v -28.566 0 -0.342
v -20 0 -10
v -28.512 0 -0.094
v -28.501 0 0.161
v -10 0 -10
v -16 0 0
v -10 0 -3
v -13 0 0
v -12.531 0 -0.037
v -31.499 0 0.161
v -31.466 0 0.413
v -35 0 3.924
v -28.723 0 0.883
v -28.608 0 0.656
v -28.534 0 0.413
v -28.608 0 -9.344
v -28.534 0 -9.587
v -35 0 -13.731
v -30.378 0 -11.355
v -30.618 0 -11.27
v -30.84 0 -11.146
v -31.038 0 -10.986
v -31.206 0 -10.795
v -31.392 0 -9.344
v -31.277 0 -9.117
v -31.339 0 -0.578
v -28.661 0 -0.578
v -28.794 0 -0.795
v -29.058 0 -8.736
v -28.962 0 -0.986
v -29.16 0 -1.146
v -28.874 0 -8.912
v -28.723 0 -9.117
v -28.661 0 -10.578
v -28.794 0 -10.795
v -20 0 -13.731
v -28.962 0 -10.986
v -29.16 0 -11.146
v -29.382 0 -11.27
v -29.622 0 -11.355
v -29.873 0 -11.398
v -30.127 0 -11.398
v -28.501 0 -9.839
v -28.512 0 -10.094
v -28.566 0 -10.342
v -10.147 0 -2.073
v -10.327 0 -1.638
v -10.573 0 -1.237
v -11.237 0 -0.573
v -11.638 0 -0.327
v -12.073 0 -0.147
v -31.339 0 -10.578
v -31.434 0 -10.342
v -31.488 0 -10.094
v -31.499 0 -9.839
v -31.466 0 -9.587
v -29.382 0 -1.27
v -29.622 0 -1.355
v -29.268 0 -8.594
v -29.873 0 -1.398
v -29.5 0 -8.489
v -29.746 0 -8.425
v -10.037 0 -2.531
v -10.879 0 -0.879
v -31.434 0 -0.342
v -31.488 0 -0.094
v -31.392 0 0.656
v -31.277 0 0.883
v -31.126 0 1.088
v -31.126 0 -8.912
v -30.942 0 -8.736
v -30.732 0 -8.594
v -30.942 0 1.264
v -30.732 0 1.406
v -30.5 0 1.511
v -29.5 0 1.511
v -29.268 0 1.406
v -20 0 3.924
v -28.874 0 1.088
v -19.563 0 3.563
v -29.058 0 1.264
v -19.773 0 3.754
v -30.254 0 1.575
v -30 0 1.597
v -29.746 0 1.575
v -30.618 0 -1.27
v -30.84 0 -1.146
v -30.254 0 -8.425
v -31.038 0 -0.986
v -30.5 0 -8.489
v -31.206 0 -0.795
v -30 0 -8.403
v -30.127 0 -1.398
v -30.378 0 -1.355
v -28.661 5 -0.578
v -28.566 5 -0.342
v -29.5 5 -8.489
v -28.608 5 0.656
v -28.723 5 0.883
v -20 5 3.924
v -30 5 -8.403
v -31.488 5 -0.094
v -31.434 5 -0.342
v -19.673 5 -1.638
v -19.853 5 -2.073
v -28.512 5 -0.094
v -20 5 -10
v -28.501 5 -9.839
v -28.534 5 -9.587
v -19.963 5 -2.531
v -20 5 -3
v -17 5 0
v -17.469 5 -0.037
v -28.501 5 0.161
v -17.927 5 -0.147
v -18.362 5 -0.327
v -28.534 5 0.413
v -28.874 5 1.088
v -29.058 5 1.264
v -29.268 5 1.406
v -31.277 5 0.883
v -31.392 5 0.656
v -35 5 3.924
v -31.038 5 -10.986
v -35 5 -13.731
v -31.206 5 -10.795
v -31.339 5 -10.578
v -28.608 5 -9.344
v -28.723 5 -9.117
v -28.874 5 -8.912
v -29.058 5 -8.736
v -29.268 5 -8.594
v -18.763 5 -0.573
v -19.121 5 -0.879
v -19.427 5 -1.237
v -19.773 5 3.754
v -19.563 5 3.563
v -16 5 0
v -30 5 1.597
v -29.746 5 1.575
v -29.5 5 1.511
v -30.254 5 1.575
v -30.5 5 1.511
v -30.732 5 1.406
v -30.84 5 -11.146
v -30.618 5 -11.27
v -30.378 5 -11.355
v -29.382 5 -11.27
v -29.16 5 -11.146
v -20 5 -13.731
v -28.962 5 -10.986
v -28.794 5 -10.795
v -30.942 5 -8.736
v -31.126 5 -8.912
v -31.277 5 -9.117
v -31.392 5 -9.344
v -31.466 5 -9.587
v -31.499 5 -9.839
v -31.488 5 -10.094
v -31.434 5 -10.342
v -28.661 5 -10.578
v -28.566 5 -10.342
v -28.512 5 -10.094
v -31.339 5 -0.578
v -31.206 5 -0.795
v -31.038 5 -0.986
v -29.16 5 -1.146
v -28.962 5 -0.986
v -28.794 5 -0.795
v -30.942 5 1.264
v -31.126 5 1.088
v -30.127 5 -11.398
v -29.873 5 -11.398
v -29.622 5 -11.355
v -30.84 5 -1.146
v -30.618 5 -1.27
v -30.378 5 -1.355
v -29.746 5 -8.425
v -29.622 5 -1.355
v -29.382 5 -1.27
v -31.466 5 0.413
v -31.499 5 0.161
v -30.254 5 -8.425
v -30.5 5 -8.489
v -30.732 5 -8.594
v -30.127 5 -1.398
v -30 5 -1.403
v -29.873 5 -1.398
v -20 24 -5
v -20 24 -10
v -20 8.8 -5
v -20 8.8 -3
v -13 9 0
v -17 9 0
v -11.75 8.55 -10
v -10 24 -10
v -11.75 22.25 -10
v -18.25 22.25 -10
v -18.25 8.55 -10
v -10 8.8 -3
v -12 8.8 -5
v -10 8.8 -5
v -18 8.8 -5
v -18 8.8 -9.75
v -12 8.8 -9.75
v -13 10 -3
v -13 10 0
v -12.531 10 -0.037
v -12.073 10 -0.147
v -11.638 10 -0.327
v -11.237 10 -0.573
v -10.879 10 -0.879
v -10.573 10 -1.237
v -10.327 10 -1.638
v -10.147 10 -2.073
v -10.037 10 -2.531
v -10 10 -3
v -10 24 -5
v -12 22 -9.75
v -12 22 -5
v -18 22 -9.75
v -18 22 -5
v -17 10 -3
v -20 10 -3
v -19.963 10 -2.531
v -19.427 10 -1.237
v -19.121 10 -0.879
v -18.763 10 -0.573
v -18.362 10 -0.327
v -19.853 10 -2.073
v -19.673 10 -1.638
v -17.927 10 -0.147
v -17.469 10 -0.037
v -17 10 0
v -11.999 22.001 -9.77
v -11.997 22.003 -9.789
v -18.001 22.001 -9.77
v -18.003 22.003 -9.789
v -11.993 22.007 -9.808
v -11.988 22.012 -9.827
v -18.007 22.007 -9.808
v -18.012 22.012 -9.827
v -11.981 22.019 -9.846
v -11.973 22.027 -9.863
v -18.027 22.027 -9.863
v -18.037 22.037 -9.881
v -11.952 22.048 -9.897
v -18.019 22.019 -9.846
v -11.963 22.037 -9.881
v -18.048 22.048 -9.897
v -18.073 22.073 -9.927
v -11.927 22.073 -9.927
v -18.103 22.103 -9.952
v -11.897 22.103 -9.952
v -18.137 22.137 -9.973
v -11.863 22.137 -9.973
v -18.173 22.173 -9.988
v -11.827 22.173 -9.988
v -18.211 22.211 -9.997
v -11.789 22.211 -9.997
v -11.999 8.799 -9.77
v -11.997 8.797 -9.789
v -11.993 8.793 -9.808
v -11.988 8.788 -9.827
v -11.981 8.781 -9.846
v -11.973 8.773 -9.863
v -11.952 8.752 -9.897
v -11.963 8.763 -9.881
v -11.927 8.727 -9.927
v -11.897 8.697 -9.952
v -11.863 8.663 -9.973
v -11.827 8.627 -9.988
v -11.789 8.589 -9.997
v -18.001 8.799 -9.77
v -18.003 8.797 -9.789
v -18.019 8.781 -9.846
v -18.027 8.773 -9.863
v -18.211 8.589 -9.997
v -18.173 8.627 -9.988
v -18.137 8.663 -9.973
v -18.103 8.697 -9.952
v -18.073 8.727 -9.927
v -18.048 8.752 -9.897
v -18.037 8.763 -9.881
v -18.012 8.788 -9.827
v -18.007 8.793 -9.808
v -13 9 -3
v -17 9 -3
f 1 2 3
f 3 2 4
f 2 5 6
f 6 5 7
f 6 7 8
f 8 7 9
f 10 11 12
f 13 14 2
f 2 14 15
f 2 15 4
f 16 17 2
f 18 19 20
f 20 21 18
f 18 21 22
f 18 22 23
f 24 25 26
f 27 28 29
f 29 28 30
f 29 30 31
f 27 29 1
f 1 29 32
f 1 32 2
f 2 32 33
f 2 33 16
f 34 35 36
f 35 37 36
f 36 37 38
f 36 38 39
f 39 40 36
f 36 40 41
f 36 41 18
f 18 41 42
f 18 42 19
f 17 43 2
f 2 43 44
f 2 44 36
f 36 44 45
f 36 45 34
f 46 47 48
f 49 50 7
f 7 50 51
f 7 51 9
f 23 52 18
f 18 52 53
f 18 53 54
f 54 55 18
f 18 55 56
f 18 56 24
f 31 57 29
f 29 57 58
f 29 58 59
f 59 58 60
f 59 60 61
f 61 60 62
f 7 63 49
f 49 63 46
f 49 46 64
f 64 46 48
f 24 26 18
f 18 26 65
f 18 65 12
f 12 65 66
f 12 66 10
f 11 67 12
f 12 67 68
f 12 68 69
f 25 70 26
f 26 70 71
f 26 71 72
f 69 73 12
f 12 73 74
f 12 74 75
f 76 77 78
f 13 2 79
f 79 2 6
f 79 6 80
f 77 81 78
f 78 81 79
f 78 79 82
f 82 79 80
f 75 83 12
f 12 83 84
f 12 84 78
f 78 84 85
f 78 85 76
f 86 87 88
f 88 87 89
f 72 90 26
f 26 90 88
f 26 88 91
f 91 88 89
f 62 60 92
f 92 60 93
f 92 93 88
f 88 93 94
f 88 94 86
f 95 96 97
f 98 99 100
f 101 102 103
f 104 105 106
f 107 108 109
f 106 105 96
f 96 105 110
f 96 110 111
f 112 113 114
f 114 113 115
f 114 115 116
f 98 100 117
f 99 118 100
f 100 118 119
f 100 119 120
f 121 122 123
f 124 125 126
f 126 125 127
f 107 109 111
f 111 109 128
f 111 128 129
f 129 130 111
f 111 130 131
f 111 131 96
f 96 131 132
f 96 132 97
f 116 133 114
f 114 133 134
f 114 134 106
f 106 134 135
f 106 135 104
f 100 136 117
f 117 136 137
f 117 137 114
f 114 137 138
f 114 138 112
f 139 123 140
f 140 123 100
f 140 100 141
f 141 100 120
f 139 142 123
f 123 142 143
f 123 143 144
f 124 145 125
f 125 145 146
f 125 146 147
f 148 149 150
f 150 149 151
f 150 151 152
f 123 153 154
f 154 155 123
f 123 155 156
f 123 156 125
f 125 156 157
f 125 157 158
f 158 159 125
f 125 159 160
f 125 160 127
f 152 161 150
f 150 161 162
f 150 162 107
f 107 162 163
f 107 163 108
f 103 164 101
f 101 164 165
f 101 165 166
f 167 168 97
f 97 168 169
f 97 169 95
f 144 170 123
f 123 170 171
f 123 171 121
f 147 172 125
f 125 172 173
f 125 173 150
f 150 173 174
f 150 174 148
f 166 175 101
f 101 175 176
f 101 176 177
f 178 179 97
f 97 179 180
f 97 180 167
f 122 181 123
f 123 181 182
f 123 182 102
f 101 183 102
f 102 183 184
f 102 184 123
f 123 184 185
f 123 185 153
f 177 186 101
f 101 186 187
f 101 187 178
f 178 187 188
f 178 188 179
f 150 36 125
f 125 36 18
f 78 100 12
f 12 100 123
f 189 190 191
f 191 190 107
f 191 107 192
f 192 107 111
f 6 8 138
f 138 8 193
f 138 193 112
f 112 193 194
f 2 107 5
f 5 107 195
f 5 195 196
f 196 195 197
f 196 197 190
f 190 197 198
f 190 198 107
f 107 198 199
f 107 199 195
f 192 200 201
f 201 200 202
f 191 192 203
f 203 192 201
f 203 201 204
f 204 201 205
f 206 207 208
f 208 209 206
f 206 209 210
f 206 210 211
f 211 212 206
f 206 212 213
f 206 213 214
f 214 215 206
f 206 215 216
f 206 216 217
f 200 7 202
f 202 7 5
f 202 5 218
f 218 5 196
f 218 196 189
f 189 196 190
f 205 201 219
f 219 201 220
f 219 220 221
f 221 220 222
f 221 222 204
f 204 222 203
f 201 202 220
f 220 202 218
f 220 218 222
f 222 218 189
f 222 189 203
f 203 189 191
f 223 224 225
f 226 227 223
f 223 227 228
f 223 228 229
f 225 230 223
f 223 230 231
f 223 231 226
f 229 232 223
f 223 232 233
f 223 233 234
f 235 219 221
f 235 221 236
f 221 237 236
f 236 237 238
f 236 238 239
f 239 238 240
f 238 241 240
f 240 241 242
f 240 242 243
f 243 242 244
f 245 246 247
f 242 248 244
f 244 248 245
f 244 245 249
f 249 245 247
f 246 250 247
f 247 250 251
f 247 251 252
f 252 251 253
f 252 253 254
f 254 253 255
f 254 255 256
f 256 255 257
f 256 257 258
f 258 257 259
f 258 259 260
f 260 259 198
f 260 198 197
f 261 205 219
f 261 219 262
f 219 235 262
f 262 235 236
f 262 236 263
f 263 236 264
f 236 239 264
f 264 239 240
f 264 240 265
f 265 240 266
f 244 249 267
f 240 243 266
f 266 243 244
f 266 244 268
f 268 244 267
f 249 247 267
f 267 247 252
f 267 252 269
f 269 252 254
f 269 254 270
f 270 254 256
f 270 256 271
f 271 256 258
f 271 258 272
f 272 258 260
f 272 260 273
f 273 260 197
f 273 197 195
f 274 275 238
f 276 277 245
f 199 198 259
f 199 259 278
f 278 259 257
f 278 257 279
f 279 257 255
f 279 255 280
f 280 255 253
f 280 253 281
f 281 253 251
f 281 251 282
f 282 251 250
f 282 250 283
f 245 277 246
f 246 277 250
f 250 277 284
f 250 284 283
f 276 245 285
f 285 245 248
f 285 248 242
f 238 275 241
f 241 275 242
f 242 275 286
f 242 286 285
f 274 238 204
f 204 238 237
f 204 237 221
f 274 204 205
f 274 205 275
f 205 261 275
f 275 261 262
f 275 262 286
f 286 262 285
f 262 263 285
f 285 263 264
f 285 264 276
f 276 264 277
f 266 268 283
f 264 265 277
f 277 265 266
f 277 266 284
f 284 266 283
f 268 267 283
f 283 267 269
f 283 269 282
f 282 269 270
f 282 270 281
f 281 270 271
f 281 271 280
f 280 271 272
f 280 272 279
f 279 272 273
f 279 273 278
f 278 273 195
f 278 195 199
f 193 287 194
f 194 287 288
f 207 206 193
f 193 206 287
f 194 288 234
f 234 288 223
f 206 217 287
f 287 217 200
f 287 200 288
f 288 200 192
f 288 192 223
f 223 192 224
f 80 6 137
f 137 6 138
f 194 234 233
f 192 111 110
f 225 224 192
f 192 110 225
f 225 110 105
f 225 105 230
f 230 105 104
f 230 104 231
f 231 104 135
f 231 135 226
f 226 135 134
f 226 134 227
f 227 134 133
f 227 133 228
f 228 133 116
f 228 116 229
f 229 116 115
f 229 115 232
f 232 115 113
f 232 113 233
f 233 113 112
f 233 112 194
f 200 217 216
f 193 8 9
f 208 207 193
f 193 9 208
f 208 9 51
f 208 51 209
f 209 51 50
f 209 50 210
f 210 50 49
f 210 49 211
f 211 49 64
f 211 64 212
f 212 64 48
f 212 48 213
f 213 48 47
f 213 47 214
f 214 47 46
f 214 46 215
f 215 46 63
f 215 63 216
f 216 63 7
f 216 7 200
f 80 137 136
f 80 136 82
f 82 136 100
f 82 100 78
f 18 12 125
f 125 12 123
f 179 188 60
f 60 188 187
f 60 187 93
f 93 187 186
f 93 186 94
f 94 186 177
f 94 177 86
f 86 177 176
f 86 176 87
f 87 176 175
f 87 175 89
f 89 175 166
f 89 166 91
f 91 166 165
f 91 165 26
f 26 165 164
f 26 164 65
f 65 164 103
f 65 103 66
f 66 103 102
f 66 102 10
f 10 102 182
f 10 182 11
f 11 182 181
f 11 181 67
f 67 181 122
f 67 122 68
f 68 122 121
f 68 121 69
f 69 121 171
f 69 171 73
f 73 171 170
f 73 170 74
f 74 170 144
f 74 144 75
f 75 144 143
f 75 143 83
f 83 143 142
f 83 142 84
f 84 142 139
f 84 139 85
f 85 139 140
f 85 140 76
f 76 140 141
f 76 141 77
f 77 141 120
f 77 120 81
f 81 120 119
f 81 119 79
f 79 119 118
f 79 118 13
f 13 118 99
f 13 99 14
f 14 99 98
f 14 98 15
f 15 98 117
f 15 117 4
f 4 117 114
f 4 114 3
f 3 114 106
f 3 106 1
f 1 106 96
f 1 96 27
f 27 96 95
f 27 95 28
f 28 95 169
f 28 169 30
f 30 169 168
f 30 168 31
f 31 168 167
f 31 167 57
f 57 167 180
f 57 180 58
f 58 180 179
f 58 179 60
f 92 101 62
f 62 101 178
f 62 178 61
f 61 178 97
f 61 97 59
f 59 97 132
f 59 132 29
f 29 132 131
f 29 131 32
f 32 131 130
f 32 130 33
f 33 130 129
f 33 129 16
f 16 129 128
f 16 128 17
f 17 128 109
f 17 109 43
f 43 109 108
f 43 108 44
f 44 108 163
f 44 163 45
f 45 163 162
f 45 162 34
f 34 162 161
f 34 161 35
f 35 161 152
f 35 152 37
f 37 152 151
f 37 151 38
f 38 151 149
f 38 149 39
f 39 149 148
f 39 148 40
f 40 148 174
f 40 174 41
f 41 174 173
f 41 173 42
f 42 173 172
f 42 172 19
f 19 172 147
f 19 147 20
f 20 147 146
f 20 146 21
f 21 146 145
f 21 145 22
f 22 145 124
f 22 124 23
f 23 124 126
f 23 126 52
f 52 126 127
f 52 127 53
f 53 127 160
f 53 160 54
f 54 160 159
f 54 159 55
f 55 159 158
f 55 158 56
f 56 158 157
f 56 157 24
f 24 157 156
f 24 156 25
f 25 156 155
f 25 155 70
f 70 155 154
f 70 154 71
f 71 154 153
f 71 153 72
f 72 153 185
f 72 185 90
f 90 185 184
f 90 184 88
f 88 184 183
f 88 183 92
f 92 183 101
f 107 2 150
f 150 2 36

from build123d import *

# Parameters (mm, degrees)
EXTRUDE_1_DEPTH      = 4
SKETCH_2_W           = 10
SKETCH_2_H           = 15
EXTRUDE_2_DEPTH      = 20
SKETCH_3_R           = 1.45
CUT_EXTRUDE_1_DEPTH  = 20
SKETCH_4_W           = 6
SKETCH_4_H           = 13.2
CUT_EXTRUDE_2_DEPTH  = 9.5
SKETCH_6_R           = 0.75
CUT_EXTRUDE_4_DEPTH  = 3.5
SKETCH_7_W           = 10
SKETCH_7_H           = 24
CUT_EXTRUDE_5_DEPTH  = 5
SKETCH_9_W           = 3
SKETCH_9_H           = 12
CUT_EXTRUDE_6_DEPTH  = 10
SKETCH_11_W          = 1.5
SKETCH_11_H          = 12
CUT_EXTRUDE_7_DEPTH  = 10
CUT_EXTRUDE_8_REACH  = 41.699
SKETCH_13_W          = 10
SKETCH_13_H          = 5
SKETCH_19_W          = 10
SKETCH_19_H          = 2.4
EXTRUDE_6_DEPTH      = 4.8
SKETCH_20_W          = 10
SKETCH_20_H          = 2.6
EXTRUDE_7_DEPTH      = 6
FILLET_17_R          = 0.25
SKETCH_21_W          = 4
SKETCH_21_H          = 1
CUT_EXTRUDE_9_DEPTH  = 5.2
EXTRUDE_8_DEPTH      = 0.4
EXTRUDE_START        = 1
SKETCH_29_W          = 10
SKETCH_29_H          = 10
SKETCH_29_R          = 1.45
EXTRUDE_9_DEPTH      = 1
SKETCH_36_W          = 10
SKETCH_36_H          = 10
CUT_EXTRUDE_10_DEPTH = 10
SKETCH_38_W          = 10
SKETCH_38_H          = 5
EXTRUDE_10_DEPTH     = 20
SKETCH_39_W          = 10
SKETCH_39_H          = 5
EXTRUDE_11_DEPTH     = 10
SKETCH_40_R          = 1.5
CUT_EXTRUDE_11_DEPTH = 15
CHAMFER_1_SIZE       = 4
SKETCH_46_W          = 40
SKETCH_46_H          = 5
EXTRUDE_12_DEPTH     = 32
SKETCH_47_R          = 1.5
CUT_EXTRUDE_12_DEPTH = 10
SKETCH_48_W          = 24
SKETCH_48_H          = 16
SKETCH_48_H_2        = 6.075719237
CUT_EXTRUDE_13_DEPTH = 10
EXTRUDE_13_DEPTH     = 5
CHAMFER_2_SIZE       = 6
FILLET_18_R          = 3
CUT_EXTRUDE_14_DEPTH = 10
SKETCH_55_W          = 17.654819926
SKETCH_55_H          = 5
EXTRUDE_14_DEPTH     = 25
SKETCH_60_W          = 17.654819926
SKETCH_60_H          = 5
CUT_EXTRUDE_15_DEPTH = 10
SKETCH_61_R          = 1.5
CUT_EXTRUDE_16_DEPTH = 10
SKETCH_66_W          = 4.869638013
SKETCH_66_H          = 4.33889787
CUT_EXTRUDE_17_DEPTH = 14


with BuildPart() as part:
    # 草图1 → 凸台-拉伸1 (new body)
    with BuildSketch(Plane(origin=(0, 0, 0), x_dir=(1, 0, 0), z_dir=(0, 1, 0))):
        Polygon((-20, 0), (-20, -5), (-10, -5), (-10, 0), (0, 0), (0, 10), (-30, 10), (-30, 0), align=None)
    extrude(amount=EXTRUDE_1_DEPTH)

    # 草图2 → 凸台-拉伸2 (add)
    with BuildSketch(Plane(origin=(0, 4, 0), x_dir=(1, 0, 0), z_dir=(0, 1, 0))):
        with Locations((-15, 2.5)):
            Rectangle(SKETCH_2_W, SKETCH_2_H)
    extrude(amount=EXTRUDE_2_DEPTH)

    # 草图3 → 切除-拉伸1 (cut)
    with BuildSketch(Plane(origin=(0, 4, 0), x_dir=(1, 0, 0), z_dir=(0, 1, 0))):
        with Locations(Location((-5, 5, 0), (0, 0, 270))):
            Circle(SKETCH_3_R)
    extrude(amount=-CUT_EXTRUDE_1_DEPTH, mode=Mode.SUBTRACT)

    # 草图4 → 切除-拉伸2 (cut)
    with BuildSketch(Plane(origin=(0, 0, -10), x_dir=(-1, 0, 0), z_dir=(0, 0, -1))):
        with Locations((15, 15.4)):
            Rectangle(SKETCH_4_W, SKETCH_4_H)
    extrude(amount=-CUT_EXTRUDE_2_DEPTH, mode=Mode.SUBTRACT)

    # 草图6 → 切除-拉伸4 (cut)
    with BuildSketch(Plane(origin=(0, 0, -0.5), x_dir=(-1, 0, 0), z_dir=(0, 0, -1))):
        with Locations((15, 20.68)):
            Circle(SKETCH_6_R)
        with Locations((15, 10.52)):
            Circle(SKETCH_6_R)
        with Locations((15, 15.6)):
            Circle(SKETCH_6_R)
    extrude(amount=-CUT_EXTRUDE_4_DEPTH, mode=Mode.SUBTRACT)

    # 草图7 → 切除-拉伸5 (cut)
    with BuildSketch(Plane.XY.offset(5)):
        with Locations((-15, 12)):
            Rectangle(SKETCH_7_W, SKETCH_7_H)
    extrude(amount=-CUT_EXTRUDE_5_DEPTH, mode=Mode.SUBTRACT)

    # 草图9 → 切除-拉伸6 (cut)
    with BuildSketch(Plane(origin=(0, 0, -0.5), x_dir=(-1, 0, 0), z_dir=(0, 0, -1))):
        with Locations((15, 15.6)):
            Rectangle(SKETCH_9_W, SKETCH_9_H)
    extrude(amount=-CUT_EXTRUDE_6_DEPTH, mode=Mode.SUBTRACT)

    # 草图11 → 切除-拉伸7 (cut)
    with BuildSketch(Plane(origin=(0, 0, -0.5), x_dir=(-1, 0, 0), z_dir=(0, 0, -1))):
        with Locations((17.25, 15.6)):
            Rectangle(SKETCH_11_W, SKETCH_11_H)
        with Locations((12.75, 15.6)):
            Rectangle(SKETCH_11_W, SKETCH_11_H)
    extrude(amount=-CUT_EXTRUDE_7_DEPTH, mode=Mode.SUBTRACT)

    # 切除-拉伸8: up to this face of the body (flat: up to its plane)
    cut_extrude_8_end = Plane(part.part.faces().sort_by_distance((-5, 4, -9.858578644))[0])
    # 草图13 → 切除-拉伸8 (cut, up to the picked face)
    with BuildSketch(Plane(origin=(0, 24, 0), x_dir=(1, 0, 0), z_dir=(0, 1, 0)), mode=Mode.PRIVATE) as cut_extrude_8_sk1:
        with Locations((-15, 2.5)):
            Rectangle(SKETCH_13_W, SKETCH_13_H)
    cut_extrude_8_tool1 = split(extrude(cut_extrude_8_sk1.sketch, amount=-CUT_EXTRUDE_8_REACH, mode=Mode.PRIVATE), bisect_by=cut_extrude_8_end, keep=Keep.BOTH, mode=Mode.PRIVATE)
    add(cut_extrude_8_tool1.solids().sort_by(Axis((-15, 24, -2.5), (0, -1, 0)))[0], mode=Mode.SUBTRACT)

    # 草图19 → 凸台-拉伸6 (add)
    with BuildSketch(Plane(origin=(0, 4, 0), x_dir=(1, 0, 0), z_dir=(0, 1, 0))):
        with Locations((-15, 3.8)):
            Rectangle(SKETCH_19_W, SKETCH_19_H)
    extrude(amount=EXTRUDE_6_DEPTH)

    # 草图20 → 凸台-拉伸7 (add)
    with BuildSketch(Plane(origin=(0, 4, 0), x_dir=(1, 0, 0), z_dir=(0, 1, 0))):
        with Locations((-15, 1.3)):
            Rectangle(SKETCH_20_W, SKETCH_20_H)
    extrude(amount=EXTRUDE_7_DEPTH)

    # 圆角17
    fillet_17_edges = [part.edges().sort_by_distance(p)[0] for p in [
        (-12, 15.4, -10),
        (-15, 8.8, -10),
        (-18, 15.4, -10),
        (-15, 22, -10),
    ]]
    fillet(fillet_17_edges, radius=FILLET_17_R)

    # 草图21 → 切除-拉伸9 (cut)
    with BuildSketch(Plane.XY):
        with Locations((-15, 9.5)):
            Rectangle(SKETCH_21_W, SKETCH_21_H)
    extrude(amount=-CUT_EXTRUDE_9_DEPTH, mode=Mode.SUBTRACT)

    # 草图22 → 凸台-拉伸8 (add)
    with BuildSketch(Plane(origin=(0, 0, -2.6), x_dir=(-1, 0, 0), z_dir=(0, 0, -1))):
        Polygon((17, 9), (13, 9), (13, 10), (10, 10), (10, 8.8), (20, 8.8), (20, 10), (17, 10), align=None)
    extrude(amount=EXTRUDE_8_DEPTH)

    # 草图29 → 凸台-拉伸9 (add)
    # profile 1 of 2: a face of its own
    with BuildSketch(Plane(origin=(0, 4, 0), x_dir=(1, 0, 0), z_dir=(0, 1, 0)).offset(EXTRUDE_START)):
        with Locations((-25, 5)):
            Rectangle(SKETCH_29_W, SKETCH_29_H)
    # profile 2 of 2: a face of its own
    with BuildSketch(Plane(origin=(0, 4, 0), x_dir=(1, 0, 0), z_dir=(0, 1, 0)).offset(EXTRUDE_START)):
        with Locations((-5, 5)):
            Rectangle(SKETCH_29_W, SKETCH_29_H)
        with Locations(Location((-5, 5, 0), (0, 0, 270))):
            Circle(SKETCH_29_R, mode=Mode.SUBTRACT)
    extrude(amount=-EXTRUDE_9_DEPTH)

    # 草图36 → 切除-拉伸10 (cut)
    with BuildSketch(Plane(origin=(0, 5, 0), x_dir=(1, 0, 0), z_dir=(0, 1, 0))):
        with Locations((-5, 5)):
            Rectangle(SKETCH_36_W, SKETCH_36_H)
    extrude(amount=-CUT_EXTRUDE_10_DEPTH, mode=Mode.SUBTRACT)

    # 草图38 → 凸台-拉伸10 (add)
    with BuildSketch(Plane(origin=(0, 0, -10), x_dir=(-1, 0, 0), z_dir=(0, 0, -1))):
        with Locations((25, 2.5)):
            Rectangle(SKETCH_38_W, SKETCH_38_H)
    extrude(amount=EXTRUDE_10_DEPTH)

    # 草图39 → 凸台-拉伸11 (add)
    with BuildSketch(Plane.XY):
        with Locations((-25, 2.5)):
            Rectangle(SKETCH_39_W, SKETCH_39_H)
    extrude(amount=EXTRUDE_11_DEPTH)

    # 草图40 → 切除-拉伸11 (cut)
    with BuildSketch(Plane(origin=(0, 5, 0), x_dir=(1, 0, 0), z_dir=(0, 1, 0))):
        with Locations(Location((-25, 25, 0), (0, 0, 270))):
            Circle(SKETCH_40_R)
        with Locations(Location((-25, -5, 0), (0, 0, 270))):
            Circle(SKETCH_40_R)
    extrude(amount=-CUT_EXTRUDE_11_DEPTH, mode=Mode.SUBTRACT)

    # 倒角1
    # the kernel refuses this chamfer: 4 mm, written as the material it adds along each edge
    with BuildSketch(Plane(origin=(-20, 5, -10), x_dir=(1, 0, 0), z_dir=(0, -1, 0))) as chamfer_1_piece_1:
        Polygon((CHAMFER_1_SIZE, 0), (0, -CHAMFER_1_SIZE), (0, 0), align=None)
    extrude(amount=5)
    with BuildSketch(Plane(origin=(-20, 0, 0), x_dir=(0, 0, 1), z_dir=(0, 1, 0))) as chamfer_1_piece_2:
        Polygon((CHAMFER_1_SIZE, 0), (0, CHAMFER_1_SIZE), (0, 0), align=None)
    extrude(amount=5)

    # 草图46 → 凸台-拉伸12 (add)
    with BuildSketch(Plane.ZY.offset(30)):
        with Locations((-10, 2.5)):
            Rectangle(SKETCH_46_W, SKETCH_46_H)
    extrude(amount=EXTRUDE_12_DEPTH)

    # 草图47 → 切除-拉伸12 (cut)
    with BuildSketch(Plane(origin=(0, 5, 0), x_dir=(1, 0, 0), z_dir=(0, 1, 0))):
        with Locations(Location((-25, -5, 0), (0, 0, 270))):
            Circle(SKETCH_47_R)
        with Locations(Location((-25, 25, 0), (0, 0, 270))):
            Circle(SKETCH_47_R)
        with Locations(Location((-57, 25, 0), (0, 0, 270))):
            Circle(SKETCH_47_R)
        with Locations(Location((-57, -5, 0), (0, 0, 270))):
            Circle(SKETCH_47_R)
    extrude(amount=-CUT_EXTRUDE_12_DEPTH, mode=Mode.SUBTRACT)

    # 草图48 → 切除-拉伸13 (cut)
    with BuildSketch(Plane(origin=(0, 5, 0), x_dir=(1, 0, 0), z_dir=(0, 1, 0))):
        with Locations((-32, 22)):
            Rectangle(SKETCH_48_W, SKETCH_48_H)
        with Locations((-32, -6.962140382)):
            Rectangle(SKETCH_48_W, SKETCH_48_H_2)
    extrude(amount=-CUT_EXTRUDE_13_DEPTH, mode=Mode.SUBTRACT)

    # 草图49 → 凸台-拉伸13 (add)
    with BuildSketch(Plane(origin=(0, 5, 0), x_dir=(1, 0, 0), z_dir=(0, 1, 0))):
        with BuildLine():
            Line((-26.045384198, -3.924280763), (-23.954615802, -3.924280763))
            ThreePointArc((-23.954615802, -3.924280763), (-25, -3.5), (-26.045384198, -3.924280763))
        make_face()
    extrude(amount=-EXTRUDE_13_DEPTH)

    # 倒角2
    chamfer_2_edges = [part.edges().sort_by_distance(p)[0] for p in [
        (-44, 2.5, -14),
        (-44, 2.5, 3.924280763),
    ]]
    chamfer(chamfer_2_edges, length=CHAMFER_2_SIZE)

    # 圆角18
    # the kernel refuses this fillet: 3 mm, written as the material it takes off along each edge
    with BuildSketch(Plane(origin=(-20, 5, 0), x_dir=(0, 0, -1), z_dir=(0, 1, 0))) as fillet_18_piece_1:
        with BuildLine():
            CenterArc((FILLET_18_R, -FILLET_18_R), FILLET_18_R, 90, 90)
            Line((0, -FILLET_18_R), (0, 0))
            Line((0, 0), (FILLET_18_R, 0))
        make_face()
    extrude(amount=12.5, mode=Mode.SUBTRACT)
    with BuildSketch(Plane(origin=(-10, 17.5, 0), x_dir=(-1, 0, 0), z_dir=(0, -1, 0))) as fillet_18_piece_2:
        with BuildLine():
            CenterArc((FILLET_18_R, FILLET_18_R), FILLET_18_R, 180, 90)
            Line((0, FILLET_18_R), (0, 0))
            Line((0, 0), (FILLET_18_R, 0))
        make_face()
    extrude(amount=25, mode=Mode.SUBTRACT)
    with BuildSketch(Plane(origin=(-20, -1.544489496, 4), x_dir=(0.7071067811865482, 0, -0.7071067811865468), z_dir=(0, 1, 0))) as fillet_18_piece_3:
        with BuildLine():
            CenterArc((0.617795798, 3), FILLET_18_R, 259.158967285, 10.841032715)
            Line((0.053541586, 0.053541586), (0, 0))
            Line((0, 0), (0.617795798, 0))
        make_face()
    extrude(amount=8.088978992, mode=Mode.SUBTRACT)
    with BuildSketch(Plane(origin=(-20, 8.106601718, -14), x_dir=(-1, 0, 0), z_dir=(0, -1, 0))) as fillet_18_piece_4:
        with BuildLine():
            CenterArc((FILLET_18_R * 0.414213562373, -FILLET_18_R), FILLET_18_R, 90, 45)
            Line((-FILLET_18_R * 0.292893218813, -FILLET_18_R * 0.292893218813), (0, 0))
            Line((0, 0), (FILLET_18_R * 0.414213562373, 0))
        make_face()
    extrude(amount=11.213203436, mode=Mode.SUBTRACT)
    with BuildSketch(Plane(origin=(-44, 6.674406651, 10), x_dir=(-1, 0, 0), z_dir=(0, -1, 0))) as fillet_18_piece_5:
        with BuildLine():
            CenterArc((0.66976266, 3), FILLET_18_R, 257.099758761, 12.900241239)
            Line((0, 0.075719237), (0, 0))
            Line((0, 0), (0.66976266, 0))
        make_face()
    extrude(amount=8.348813302, mode=Mode.SUBTRACT)
    with BuildSketch(Plane(origin=(-62, -7.5, 10), x_dir=(0, 0, -1), z_dir=(0, 1, 0))) as fillet_18_piece_6:
        with BuildLine():
            CenterArc((FILLET_18_R, -FILLET_18_R), FILLET_18_R, 90, 90)
            Line((0, -FILLET_18_R), (0, 0))
            Line((0, 0), (FILLET_18_R, 0))
        make_face()
    extrude(amount=20, mode=Mode.SUBTRACT)
    with BuildSketch(Plane(origin=(-62, 12.5, -30), x_dir=(1, 0, 0), z_dir=(0, -1, 0)), Plane(origin=(-44, 12.5, -30), x_dir=(0, 0, 1), z_dir=(0, -1, 0))) as fillet_18_piece_7:
        with BuildLine():
            CenterArc((FILLET_18_R, FILLET_18_R), FILLET_18_R, 180, 90)
            Line((0, FILLET_18_R), (0, 0))
            Line((0, 0), (FILLET_18_R, 0))
        make_face()
    extrude(amount=20, mode=Mode.SUBTRACT)

    # 草图54 → 切除-拉伸14 (cut)
    with BuildSketch(Plane(origin=(0, 5, 0), x_dir=(1, 0, 0), z_dir=(0, 1, 0))):
        Polygon((-20, 3), (-20, 37.818871499), (-71.400493644, 37.818871499), (-71.400493644, 3), (-71.400493644, -21.76419116), (-20, -21.76419116), align=None)
    extrude(amount=-CUT_EXTRUDE_14_DEPTH, mode=Mode.SUBTRACT)

    # 草图55 → 凸台-拉伸14 (add)
    with BuildSketch(Plane.ZY.offset(20)):
        with Locations((-4.9031292, 2.5)):
            Rectangle(SKETCH_55_W, SKETCH_55_H)
    extrude(amount=EXTRUDE_14_DEPTH)

    # 草图60 → 切除-拉伸15 (cut)
    with BuildSketch(Plane.ZY.offset(45)):
        with Locations((-4.9031292, 2.5)):
            Rectangle(SKETCH_60_W, SKETCH_60_H)
    extrude(amount=-CUT_EXTRUDE_15_DEPTH, mode=Mode.SUBTRACT)

    # 草图61 → 切除-拉伸16 (cut)
    with BuildSketch(Plane(origin=(0, 5, 0), x_dir=(1, 0, 0), z_dir=(0, 1, 0))):
        with Locations(Location((-30, 9.9031292, 0), (0, 0, 270))):
            Circle(SKETCH_61_R)
        with Locations(Location((-30, -0.0968708, 0), (0, 0, 270))):
            Circle(SKETCH_61_R)
    extrude(amount=-CUT_EXTRUDE_16_DEPTH, mode=Mode.SUBTRACT)

    # 草图66 → 切除-拉伸17 (cut)
    with BuildSketch(Plane(origin=(0, 5, 0), x_dir=(1, 0, 0), z_dir=(0, 1, 0))):
        with Locations((-17.565180994, 12.169448935)):
            Rectangle(SKETCH_66_W, SKETCH_66_H)
    extrude(amount=-CUT_EXTRUDE_17_DEPTH, mode=Mode.SUBTRACT)


solid = part.part
